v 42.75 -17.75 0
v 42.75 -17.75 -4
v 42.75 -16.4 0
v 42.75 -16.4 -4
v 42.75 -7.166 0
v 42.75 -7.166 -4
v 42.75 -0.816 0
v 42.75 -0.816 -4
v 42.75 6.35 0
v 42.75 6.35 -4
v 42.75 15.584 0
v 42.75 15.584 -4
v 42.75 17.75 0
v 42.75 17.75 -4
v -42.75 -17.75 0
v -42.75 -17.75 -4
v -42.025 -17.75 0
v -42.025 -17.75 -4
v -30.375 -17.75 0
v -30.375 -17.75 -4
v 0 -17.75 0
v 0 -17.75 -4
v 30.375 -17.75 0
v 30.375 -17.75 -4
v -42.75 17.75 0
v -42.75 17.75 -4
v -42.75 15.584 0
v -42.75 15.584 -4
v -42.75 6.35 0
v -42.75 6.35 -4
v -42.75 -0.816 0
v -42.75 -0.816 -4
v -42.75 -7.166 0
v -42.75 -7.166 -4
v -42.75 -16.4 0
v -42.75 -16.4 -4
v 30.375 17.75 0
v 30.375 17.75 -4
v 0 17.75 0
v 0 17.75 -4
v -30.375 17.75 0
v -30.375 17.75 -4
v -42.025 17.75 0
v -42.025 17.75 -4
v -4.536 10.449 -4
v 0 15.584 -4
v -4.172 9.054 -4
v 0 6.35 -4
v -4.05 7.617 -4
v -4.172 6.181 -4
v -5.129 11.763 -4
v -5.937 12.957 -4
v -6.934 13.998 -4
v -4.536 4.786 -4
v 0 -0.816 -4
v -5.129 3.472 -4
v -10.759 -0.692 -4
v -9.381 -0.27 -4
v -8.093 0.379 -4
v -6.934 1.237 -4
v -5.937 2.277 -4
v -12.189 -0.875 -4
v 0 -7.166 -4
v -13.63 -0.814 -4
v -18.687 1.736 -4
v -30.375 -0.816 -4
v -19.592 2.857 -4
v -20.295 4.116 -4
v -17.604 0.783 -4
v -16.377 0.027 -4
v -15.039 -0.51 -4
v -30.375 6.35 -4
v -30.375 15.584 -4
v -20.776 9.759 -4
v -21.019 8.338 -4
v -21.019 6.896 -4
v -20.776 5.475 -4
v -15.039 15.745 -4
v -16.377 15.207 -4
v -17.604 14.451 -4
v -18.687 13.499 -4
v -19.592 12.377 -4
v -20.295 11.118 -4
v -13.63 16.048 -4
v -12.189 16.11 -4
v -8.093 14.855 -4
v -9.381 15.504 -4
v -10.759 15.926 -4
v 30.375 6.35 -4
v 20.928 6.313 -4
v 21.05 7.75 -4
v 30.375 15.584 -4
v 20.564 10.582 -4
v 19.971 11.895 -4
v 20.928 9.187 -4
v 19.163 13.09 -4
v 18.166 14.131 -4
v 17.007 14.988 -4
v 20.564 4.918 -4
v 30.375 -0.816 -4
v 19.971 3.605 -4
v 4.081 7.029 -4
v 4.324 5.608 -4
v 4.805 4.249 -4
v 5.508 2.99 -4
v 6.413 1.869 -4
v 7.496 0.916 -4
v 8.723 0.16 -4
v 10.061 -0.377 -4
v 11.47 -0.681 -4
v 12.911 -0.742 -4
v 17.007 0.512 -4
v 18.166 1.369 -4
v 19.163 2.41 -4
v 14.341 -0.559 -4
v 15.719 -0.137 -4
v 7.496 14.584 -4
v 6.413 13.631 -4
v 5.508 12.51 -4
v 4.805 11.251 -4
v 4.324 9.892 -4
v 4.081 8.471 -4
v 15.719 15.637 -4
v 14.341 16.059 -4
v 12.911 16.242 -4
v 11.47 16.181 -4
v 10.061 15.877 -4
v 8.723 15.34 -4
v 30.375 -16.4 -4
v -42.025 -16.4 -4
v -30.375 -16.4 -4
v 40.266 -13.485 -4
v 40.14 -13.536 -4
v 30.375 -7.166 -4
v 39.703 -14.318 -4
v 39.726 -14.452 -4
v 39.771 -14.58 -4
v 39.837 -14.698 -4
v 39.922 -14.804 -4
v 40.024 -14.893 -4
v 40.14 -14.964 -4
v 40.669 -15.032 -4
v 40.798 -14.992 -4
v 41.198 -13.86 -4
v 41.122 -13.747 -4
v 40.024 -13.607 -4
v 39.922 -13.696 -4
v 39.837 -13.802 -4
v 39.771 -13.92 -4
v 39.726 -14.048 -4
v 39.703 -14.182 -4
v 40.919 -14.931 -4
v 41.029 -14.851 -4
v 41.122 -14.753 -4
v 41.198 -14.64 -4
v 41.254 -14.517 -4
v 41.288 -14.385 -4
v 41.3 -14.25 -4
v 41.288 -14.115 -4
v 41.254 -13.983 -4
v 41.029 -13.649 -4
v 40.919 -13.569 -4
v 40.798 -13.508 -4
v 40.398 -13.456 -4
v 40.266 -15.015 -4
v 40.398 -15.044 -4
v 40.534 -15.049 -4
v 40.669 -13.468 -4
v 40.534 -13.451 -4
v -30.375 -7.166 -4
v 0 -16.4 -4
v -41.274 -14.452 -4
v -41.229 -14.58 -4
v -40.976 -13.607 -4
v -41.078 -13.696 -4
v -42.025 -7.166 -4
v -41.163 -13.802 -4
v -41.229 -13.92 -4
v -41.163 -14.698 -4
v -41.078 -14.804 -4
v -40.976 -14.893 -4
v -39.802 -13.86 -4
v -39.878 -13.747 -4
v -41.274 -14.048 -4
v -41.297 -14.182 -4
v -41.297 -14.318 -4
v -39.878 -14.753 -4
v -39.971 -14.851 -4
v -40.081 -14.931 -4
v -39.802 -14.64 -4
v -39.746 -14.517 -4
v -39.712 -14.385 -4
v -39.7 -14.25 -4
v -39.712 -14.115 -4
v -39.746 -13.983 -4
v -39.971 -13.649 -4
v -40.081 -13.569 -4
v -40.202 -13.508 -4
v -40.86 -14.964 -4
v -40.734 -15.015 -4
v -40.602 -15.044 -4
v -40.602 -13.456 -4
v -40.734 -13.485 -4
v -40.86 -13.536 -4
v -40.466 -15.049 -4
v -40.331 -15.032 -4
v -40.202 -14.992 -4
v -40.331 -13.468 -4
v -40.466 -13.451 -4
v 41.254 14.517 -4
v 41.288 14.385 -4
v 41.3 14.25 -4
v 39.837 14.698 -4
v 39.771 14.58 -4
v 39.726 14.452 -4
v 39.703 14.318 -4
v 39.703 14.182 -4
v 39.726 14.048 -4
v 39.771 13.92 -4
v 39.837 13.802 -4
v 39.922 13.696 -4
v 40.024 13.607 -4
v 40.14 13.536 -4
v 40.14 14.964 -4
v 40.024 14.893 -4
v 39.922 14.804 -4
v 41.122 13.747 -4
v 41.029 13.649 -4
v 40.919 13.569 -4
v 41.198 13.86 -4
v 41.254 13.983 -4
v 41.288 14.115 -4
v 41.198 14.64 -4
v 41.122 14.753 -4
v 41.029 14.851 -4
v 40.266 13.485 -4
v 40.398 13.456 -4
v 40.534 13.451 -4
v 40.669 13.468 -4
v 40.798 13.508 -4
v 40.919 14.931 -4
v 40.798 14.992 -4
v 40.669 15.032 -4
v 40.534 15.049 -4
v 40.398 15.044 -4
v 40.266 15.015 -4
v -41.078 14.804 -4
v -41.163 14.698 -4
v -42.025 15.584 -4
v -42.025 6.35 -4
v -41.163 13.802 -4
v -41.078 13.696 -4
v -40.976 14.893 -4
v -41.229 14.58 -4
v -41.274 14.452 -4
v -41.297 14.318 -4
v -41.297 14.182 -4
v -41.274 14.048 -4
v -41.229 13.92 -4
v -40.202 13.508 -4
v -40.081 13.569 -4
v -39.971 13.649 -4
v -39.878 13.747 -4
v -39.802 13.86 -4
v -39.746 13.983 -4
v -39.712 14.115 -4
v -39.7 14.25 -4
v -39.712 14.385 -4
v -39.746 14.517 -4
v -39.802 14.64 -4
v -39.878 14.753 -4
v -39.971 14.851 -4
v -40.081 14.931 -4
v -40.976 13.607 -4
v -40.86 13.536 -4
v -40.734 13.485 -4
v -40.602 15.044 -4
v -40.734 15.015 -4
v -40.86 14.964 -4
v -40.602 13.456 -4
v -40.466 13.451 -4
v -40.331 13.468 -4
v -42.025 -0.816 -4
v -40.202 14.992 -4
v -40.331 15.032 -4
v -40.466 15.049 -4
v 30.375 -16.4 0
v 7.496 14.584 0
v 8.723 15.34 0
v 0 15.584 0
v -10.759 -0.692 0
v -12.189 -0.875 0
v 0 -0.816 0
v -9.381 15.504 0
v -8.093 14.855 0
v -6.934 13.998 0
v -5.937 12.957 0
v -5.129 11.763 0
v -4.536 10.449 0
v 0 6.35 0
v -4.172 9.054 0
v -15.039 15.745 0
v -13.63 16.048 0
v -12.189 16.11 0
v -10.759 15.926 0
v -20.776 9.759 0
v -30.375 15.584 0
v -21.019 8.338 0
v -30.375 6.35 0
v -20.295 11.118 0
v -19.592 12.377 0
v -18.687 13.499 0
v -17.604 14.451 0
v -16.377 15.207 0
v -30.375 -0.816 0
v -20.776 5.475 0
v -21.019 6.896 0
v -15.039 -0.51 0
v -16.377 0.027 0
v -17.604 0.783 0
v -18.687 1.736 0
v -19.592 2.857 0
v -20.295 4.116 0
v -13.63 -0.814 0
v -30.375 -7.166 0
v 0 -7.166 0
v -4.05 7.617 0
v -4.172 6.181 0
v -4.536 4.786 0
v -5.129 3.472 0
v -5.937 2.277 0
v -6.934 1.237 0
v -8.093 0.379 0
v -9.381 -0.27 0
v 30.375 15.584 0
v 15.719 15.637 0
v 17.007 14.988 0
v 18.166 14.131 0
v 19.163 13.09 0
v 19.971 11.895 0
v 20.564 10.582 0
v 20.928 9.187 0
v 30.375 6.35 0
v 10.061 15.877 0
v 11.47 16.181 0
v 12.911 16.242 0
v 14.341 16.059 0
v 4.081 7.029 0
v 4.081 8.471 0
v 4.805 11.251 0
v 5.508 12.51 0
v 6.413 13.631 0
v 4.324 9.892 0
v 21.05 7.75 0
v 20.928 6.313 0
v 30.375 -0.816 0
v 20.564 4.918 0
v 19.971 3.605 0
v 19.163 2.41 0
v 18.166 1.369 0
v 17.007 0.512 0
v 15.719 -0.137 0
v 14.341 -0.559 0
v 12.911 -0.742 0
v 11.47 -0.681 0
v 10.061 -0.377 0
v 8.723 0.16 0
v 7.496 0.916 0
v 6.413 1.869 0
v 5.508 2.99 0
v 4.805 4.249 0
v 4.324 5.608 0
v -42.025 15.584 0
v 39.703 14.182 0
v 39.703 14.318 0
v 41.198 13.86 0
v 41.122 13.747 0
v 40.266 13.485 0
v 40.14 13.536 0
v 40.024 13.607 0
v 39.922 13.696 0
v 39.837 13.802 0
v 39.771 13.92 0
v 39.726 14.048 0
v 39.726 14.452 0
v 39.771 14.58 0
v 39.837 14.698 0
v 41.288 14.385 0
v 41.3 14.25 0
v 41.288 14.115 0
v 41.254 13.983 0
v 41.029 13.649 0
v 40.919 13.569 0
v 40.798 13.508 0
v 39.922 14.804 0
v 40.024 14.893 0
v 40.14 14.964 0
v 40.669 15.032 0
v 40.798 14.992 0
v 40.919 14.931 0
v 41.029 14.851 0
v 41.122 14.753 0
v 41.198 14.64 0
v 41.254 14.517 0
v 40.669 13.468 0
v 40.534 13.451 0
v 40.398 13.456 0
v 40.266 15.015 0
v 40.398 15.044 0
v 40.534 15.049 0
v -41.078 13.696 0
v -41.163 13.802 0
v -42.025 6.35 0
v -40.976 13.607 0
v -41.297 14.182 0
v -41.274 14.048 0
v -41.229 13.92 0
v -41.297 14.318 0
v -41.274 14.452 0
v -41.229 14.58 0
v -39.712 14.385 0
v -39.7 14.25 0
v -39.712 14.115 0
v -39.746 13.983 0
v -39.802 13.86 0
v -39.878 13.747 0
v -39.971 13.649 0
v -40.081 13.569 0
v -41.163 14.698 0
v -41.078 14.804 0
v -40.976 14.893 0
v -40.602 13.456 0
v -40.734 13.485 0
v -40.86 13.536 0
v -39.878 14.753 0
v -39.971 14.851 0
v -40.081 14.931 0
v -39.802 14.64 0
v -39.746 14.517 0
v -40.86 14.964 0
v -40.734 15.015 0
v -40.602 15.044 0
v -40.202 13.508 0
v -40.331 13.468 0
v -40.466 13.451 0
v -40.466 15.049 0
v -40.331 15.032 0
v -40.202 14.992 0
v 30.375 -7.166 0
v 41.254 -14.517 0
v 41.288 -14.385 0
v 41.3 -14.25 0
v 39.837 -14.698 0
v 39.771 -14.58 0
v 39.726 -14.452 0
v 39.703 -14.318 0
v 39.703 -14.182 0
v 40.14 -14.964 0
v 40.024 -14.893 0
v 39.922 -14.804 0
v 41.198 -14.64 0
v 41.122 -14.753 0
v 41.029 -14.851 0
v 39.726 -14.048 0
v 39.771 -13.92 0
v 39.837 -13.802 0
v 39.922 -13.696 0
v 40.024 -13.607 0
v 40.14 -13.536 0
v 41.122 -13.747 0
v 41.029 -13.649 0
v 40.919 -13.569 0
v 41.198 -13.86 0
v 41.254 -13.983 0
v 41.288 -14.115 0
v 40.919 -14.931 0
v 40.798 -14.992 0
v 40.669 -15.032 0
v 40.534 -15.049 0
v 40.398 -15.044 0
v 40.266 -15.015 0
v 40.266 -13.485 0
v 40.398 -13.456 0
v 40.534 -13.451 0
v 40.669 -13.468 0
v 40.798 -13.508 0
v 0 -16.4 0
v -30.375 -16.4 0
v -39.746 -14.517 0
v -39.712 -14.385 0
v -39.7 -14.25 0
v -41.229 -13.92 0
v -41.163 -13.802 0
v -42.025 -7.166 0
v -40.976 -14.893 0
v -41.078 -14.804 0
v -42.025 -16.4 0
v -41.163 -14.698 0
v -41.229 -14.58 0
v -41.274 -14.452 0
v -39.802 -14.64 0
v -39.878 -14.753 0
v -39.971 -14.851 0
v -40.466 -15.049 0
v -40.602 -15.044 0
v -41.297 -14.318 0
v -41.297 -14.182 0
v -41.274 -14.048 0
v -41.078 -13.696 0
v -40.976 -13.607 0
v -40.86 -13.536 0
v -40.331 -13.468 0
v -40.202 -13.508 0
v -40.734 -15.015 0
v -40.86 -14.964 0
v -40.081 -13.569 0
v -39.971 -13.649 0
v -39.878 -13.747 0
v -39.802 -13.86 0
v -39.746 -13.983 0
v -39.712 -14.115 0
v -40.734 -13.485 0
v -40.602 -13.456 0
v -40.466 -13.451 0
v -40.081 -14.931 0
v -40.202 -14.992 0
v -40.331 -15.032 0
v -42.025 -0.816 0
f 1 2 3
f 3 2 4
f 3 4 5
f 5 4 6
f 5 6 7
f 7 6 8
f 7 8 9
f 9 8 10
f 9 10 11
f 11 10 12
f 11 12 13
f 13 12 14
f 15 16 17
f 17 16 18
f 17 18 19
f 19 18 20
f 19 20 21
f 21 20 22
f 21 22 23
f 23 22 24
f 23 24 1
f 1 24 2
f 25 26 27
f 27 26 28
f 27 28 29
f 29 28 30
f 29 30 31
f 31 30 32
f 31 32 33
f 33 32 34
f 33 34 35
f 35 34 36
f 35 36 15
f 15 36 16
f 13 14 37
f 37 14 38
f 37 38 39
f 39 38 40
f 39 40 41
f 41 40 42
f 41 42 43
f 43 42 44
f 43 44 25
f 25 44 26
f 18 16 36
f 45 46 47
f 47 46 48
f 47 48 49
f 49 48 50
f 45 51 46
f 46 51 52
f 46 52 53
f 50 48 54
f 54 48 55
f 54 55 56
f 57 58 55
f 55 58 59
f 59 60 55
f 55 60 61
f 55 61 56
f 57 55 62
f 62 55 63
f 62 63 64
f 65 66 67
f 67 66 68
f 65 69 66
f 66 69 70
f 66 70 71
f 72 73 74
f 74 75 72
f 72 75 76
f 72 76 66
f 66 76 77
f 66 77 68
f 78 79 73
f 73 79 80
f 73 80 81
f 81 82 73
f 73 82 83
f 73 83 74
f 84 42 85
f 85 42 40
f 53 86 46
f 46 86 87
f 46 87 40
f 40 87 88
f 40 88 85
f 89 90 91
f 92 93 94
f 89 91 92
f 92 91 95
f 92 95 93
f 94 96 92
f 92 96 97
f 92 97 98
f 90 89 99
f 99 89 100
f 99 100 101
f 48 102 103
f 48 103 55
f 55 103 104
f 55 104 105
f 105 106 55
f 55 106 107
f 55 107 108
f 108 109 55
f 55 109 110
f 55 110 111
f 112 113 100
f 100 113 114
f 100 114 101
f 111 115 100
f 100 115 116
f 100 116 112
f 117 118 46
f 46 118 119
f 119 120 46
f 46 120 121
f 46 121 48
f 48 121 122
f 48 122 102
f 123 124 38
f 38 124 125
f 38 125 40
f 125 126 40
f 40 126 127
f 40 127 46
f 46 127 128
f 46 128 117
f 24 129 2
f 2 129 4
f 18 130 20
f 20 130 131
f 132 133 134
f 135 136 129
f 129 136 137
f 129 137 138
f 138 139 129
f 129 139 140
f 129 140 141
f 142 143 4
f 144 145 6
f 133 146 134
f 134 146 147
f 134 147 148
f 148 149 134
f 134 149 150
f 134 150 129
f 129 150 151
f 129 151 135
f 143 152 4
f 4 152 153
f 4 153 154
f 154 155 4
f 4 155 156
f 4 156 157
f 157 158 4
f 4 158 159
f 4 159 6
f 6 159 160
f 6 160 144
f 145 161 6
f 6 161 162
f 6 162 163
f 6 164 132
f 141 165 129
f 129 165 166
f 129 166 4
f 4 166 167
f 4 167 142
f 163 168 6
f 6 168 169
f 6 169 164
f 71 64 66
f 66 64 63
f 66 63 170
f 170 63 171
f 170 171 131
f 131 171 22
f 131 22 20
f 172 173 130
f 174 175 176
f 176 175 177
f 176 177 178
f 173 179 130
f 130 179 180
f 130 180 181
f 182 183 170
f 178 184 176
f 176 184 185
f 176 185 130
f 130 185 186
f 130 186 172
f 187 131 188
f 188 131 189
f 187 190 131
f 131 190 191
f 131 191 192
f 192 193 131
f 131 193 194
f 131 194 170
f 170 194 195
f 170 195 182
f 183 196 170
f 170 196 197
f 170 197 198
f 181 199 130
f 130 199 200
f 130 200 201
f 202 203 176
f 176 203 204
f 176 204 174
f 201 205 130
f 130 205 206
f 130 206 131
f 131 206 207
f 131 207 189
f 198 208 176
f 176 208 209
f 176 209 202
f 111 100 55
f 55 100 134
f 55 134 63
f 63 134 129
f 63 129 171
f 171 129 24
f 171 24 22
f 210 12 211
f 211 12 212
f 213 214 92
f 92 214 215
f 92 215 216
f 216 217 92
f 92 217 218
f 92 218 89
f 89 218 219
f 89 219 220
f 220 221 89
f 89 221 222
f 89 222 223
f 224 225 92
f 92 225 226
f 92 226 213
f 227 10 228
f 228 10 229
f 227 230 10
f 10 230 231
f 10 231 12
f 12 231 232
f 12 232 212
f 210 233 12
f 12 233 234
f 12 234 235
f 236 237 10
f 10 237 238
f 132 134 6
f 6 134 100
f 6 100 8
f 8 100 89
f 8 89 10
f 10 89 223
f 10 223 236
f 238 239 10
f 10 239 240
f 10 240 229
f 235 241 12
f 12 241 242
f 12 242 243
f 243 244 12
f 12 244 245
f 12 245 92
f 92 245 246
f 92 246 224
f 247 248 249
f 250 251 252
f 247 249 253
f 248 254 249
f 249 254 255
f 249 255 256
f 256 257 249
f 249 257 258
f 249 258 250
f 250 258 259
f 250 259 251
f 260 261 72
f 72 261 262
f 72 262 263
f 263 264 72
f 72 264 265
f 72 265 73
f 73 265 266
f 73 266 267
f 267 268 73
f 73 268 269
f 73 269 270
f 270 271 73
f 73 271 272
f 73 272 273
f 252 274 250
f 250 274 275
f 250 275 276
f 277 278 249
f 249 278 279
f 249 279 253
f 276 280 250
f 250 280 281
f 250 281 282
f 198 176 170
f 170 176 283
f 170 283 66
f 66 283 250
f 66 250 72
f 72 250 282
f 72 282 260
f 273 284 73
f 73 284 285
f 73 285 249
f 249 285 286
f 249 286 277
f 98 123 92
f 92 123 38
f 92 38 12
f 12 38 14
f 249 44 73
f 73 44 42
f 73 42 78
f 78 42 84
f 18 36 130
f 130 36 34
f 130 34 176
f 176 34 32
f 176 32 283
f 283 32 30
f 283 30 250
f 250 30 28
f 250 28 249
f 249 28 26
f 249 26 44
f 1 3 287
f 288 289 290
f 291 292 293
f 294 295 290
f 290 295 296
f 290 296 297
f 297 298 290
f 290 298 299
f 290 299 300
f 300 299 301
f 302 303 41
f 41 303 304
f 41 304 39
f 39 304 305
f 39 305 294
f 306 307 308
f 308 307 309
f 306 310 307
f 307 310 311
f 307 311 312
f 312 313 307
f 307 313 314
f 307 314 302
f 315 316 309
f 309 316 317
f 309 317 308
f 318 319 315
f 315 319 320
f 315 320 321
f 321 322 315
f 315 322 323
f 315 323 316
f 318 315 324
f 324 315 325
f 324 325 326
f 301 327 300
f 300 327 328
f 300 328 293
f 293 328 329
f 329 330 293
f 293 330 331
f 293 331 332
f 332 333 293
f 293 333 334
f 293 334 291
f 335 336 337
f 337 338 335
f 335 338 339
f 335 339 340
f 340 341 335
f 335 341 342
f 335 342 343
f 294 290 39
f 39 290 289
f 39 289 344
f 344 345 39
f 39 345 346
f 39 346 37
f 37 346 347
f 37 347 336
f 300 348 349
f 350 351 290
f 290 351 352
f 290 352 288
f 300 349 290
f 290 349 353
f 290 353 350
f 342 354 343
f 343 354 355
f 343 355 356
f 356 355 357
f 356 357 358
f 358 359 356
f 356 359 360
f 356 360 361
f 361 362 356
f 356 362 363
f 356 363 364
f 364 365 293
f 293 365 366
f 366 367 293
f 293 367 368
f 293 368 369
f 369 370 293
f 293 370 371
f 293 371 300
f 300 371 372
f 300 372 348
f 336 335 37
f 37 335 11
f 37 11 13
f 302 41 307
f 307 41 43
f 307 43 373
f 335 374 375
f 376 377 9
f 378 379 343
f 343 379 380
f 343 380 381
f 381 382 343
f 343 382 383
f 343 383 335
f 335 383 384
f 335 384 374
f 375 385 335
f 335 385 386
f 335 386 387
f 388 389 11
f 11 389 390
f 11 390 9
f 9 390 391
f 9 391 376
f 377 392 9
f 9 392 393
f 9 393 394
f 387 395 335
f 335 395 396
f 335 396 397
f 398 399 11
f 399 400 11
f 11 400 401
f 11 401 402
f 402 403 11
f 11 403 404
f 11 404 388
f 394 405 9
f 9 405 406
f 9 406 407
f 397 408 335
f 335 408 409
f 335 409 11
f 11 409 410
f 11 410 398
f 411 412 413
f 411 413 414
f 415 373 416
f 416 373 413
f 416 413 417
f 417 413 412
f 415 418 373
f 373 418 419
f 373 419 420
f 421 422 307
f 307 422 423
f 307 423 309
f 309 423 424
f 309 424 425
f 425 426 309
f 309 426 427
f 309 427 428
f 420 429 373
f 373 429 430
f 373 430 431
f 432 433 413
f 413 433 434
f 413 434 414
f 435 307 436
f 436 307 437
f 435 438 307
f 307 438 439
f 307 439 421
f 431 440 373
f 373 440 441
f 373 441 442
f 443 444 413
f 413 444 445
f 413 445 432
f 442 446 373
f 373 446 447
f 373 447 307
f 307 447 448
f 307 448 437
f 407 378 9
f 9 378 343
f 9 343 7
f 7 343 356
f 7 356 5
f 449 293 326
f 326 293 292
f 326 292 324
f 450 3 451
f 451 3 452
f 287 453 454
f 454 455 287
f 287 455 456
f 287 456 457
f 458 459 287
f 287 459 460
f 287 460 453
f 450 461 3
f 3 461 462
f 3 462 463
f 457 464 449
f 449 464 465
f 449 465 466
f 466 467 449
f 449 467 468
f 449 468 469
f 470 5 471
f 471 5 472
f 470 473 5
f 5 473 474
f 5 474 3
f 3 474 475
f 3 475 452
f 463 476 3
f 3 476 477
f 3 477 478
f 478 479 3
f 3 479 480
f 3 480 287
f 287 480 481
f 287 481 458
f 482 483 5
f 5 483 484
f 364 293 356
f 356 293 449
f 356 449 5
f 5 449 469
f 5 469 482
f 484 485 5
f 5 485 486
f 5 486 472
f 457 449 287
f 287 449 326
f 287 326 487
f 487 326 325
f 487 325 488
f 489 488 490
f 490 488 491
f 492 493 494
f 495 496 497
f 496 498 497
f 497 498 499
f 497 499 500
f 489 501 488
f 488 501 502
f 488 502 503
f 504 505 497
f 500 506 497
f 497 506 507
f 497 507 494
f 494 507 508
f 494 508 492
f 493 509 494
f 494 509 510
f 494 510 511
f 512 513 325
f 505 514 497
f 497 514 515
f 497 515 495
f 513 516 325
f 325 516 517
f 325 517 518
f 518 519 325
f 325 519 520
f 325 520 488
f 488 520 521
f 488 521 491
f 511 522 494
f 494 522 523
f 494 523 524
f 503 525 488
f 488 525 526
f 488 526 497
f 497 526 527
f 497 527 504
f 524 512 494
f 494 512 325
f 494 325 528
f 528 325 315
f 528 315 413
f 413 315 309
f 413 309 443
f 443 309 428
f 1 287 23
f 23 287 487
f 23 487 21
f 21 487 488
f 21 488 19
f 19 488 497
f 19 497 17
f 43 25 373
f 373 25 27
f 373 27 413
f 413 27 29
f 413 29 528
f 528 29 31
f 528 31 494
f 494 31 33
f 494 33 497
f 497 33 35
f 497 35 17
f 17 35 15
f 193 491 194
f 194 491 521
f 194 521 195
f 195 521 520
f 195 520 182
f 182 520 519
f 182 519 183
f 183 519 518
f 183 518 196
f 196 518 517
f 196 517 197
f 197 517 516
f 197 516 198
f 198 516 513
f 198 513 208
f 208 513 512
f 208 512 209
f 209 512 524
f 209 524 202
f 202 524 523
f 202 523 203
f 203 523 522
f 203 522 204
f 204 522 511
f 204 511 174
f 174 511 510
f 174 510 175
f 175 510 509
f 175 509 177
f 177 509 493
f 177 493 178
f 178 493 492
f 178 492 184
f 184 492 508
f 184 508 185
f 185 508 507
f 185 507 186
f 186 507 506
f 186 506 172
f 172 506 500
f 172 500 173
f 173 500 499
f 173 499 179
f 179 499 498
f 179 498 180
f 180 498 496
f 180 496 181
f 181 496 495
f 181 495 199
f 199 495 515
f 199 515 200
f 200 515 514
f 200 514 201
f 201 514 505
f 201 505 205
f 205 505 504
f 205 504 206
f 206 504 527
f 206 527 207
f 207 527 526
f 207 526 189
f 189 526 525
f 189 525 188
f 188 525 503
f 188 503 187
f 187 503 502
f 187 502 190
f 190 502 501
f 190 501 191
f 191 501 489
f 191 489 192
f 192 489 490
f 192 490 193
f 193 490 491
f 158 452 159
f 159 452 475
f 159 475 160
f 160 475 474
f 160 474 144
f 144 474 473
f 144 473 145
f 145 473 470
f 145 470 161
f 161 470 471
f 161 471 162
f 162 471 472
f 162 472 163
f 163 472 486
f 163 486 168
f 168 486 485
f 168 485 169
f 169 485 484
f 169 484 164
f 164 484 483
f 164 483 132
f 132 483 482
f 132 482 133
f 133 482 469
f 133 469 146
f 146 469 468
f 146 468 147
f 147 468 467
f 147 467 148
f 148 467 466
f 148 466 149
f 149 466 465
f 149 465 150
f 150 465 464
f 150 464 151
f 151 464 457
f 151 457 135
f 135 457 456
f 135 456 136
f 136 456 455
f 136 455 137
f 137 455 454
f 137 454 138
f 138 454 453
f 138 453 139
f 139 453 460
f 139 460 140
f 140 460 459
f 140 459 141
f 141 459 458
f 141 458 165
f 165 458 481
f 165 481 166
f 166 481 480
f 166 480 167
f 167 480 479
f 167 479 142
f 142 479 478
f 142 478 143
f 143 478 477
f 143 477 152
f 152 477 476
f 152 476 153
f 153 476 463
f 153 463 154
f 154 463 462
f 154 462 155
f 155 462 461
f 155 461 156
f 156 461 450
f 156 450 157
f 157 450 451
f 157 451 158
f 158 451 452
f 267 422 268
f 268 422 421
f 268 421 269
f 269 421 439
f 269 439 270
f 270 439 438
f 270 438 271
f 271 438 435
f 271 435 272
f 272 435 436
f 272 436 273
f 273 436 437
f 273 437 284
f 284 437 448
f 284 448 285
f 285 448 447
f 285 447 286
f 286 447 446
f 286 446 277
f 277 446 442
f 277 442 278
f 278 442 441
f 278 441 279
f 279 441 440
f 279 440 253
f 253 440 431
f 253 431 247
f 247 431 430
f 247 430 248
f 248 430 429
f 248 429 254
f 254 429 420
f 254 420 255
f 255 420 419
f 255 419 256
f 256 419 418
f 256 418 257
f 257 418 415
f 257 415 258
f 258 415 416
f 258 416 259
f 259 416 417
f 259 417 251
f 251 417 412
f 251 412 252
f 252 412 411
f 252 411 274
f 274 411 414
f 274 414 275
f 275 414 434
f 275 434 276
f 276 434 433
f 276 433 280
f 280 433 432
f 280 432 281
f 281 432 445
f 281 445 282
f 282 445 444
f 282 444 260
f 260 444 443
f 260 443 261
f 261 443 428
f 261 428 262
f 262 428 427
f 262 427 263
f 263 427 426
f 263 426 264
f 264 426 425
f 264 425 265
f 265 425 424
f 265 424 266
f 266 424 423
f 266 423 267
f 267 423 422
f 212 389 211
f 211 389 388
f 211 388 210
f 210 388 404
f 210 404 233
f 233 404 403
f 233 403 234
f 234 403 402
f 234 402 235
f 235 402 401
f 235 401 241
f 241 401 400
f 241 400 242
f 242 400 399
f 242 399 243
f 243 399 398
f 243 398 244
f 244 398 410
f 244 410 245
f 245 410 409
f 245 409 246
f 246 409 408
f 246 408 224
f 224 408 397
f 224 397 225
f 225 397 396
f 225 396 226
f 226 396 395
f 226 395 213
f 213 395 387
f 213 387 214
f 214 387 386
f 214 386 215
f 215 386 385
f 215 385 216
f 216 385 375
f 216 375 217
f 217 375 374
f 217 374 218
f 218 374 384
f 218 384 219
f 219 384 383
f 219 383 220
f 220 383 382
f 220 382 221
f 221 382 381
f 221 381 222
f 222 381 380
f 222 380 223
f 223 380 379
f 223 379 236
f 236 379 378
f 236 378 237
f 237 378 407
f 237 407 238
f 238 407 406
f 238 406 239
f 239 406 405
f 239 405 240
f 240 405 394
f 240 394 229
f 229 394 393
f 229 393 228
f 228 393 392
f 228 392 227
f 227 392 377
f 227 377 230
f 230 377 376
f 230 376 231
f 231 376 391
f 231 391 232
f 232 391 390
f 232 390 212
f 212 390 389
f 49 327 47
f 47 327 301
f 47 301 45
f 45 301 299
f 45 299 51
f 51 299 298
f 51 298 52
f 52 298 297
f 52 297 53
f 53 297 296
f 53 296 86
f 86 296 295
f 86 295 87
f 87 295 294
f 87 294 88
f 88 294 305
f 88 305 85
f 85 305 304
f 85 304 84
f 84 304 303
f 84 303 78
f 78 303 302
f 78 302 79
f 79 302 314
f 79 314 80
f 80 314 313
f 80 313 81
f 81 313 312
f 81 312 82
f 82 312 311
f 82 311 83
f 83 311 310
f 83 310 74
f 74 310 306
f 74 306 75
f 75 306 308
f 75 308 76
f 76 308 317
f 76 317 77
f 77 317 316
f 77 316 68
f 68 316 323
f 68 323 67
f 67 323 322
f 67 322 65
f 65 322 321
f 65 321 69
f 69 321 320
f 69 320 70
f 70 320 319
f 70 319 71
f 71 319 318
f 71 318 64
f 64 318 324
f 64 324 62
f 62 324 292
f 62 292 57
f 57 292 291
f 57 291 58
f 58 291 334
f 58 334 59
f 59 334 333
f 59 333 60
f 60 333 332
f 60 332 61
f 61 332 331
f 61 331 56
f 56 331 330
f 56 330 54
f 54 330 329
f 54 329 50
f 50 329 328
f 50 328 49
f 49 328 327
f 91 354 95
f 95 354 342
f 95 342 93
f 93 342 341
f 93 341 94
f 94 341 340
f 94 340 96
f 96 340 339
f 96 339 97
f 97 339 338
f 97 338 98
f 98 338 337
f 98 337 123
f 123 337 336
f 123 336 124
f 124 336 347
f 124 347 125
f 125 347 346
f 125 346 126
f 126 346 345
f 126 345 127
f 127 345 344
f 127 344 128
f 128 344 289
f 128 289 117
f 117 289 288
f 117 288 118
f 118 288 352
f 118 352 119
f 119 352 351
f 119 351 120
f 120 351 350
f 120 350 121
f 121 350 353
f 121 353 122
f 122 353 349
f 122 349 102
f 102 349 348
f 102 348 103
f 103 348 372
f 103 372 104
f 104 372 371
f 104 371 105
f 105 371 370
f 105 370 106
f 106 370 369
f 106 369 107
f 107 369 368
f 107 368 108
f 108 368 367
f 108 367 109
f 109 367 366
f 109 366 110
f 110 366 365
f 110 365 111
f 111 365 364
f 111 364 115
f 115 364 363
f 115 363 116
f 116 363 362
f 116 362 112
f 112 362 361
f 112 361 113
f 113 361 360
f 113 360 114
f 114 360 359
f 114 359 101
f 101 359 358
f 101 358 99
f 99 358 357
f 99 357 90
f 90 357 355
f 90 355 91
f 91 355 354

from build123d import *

# Parameters (mm, degrees)
SKETCH1_W             = 85.5
SKETCH1_H             = 35.5
BOSS_EXTRUDE1_DEPTH   = 4
M2_TAPPED_HOLE1_D     = 1.6
M2_TAPPED_HOLE1_DEPTH = 6
M2_TAPPED_HOLE1_TIP   = 0.480688495
SKETCH4_R             = 8.5
CUT_EXTRUDE1_DEPTH    = 10


with BuildPart() as part:
    # Sketch1 → Boss-Extrude1 (new body)
    with BuildSketch(Plane.XY):
        Rectangle(SKETCH1_W, SKETCH1_H)
    extrude(amount=-BOSS_EXTRUDE1_DEPTH)

    # M2 Tapped Hole1
    with Locations(Plane.XY):
        with Locations((40.5, 14.25), (-40.5, 14.25), (40.5, -14.25), (-40.5, -14.25)):
            Hole(M2_TAPPED_HOLE1_D / 2, depth=M2_TAPPED_HOLE1_DEPTH)
            with Locations((0, 0, -(M2_TAPPED_HOLE1_DEPTH + M2_TAPPED_HOLE1_TIP / 2))):  # 118° drill point
                Cone(0, M2_TAPPED_HOLE1_D / 2, M2_TAPPED_HOLE1_TIP, mode=Mode.SUBTRACT)

    # Sketch4 → Cut-Extrude1 (cut)
    with BuildSketch(Plane.XY):
        with Locations((12.55, 7.75)):
            Circle(SKETCH4_R)
        with Locations((-12.55, 7.61724702)):
            Circle(SKETCH4_R)
    extrude(amount=-CUT_EXTRUDE1_DEPTH, mode=Mode.SUBTRACT)


solid = part.part
